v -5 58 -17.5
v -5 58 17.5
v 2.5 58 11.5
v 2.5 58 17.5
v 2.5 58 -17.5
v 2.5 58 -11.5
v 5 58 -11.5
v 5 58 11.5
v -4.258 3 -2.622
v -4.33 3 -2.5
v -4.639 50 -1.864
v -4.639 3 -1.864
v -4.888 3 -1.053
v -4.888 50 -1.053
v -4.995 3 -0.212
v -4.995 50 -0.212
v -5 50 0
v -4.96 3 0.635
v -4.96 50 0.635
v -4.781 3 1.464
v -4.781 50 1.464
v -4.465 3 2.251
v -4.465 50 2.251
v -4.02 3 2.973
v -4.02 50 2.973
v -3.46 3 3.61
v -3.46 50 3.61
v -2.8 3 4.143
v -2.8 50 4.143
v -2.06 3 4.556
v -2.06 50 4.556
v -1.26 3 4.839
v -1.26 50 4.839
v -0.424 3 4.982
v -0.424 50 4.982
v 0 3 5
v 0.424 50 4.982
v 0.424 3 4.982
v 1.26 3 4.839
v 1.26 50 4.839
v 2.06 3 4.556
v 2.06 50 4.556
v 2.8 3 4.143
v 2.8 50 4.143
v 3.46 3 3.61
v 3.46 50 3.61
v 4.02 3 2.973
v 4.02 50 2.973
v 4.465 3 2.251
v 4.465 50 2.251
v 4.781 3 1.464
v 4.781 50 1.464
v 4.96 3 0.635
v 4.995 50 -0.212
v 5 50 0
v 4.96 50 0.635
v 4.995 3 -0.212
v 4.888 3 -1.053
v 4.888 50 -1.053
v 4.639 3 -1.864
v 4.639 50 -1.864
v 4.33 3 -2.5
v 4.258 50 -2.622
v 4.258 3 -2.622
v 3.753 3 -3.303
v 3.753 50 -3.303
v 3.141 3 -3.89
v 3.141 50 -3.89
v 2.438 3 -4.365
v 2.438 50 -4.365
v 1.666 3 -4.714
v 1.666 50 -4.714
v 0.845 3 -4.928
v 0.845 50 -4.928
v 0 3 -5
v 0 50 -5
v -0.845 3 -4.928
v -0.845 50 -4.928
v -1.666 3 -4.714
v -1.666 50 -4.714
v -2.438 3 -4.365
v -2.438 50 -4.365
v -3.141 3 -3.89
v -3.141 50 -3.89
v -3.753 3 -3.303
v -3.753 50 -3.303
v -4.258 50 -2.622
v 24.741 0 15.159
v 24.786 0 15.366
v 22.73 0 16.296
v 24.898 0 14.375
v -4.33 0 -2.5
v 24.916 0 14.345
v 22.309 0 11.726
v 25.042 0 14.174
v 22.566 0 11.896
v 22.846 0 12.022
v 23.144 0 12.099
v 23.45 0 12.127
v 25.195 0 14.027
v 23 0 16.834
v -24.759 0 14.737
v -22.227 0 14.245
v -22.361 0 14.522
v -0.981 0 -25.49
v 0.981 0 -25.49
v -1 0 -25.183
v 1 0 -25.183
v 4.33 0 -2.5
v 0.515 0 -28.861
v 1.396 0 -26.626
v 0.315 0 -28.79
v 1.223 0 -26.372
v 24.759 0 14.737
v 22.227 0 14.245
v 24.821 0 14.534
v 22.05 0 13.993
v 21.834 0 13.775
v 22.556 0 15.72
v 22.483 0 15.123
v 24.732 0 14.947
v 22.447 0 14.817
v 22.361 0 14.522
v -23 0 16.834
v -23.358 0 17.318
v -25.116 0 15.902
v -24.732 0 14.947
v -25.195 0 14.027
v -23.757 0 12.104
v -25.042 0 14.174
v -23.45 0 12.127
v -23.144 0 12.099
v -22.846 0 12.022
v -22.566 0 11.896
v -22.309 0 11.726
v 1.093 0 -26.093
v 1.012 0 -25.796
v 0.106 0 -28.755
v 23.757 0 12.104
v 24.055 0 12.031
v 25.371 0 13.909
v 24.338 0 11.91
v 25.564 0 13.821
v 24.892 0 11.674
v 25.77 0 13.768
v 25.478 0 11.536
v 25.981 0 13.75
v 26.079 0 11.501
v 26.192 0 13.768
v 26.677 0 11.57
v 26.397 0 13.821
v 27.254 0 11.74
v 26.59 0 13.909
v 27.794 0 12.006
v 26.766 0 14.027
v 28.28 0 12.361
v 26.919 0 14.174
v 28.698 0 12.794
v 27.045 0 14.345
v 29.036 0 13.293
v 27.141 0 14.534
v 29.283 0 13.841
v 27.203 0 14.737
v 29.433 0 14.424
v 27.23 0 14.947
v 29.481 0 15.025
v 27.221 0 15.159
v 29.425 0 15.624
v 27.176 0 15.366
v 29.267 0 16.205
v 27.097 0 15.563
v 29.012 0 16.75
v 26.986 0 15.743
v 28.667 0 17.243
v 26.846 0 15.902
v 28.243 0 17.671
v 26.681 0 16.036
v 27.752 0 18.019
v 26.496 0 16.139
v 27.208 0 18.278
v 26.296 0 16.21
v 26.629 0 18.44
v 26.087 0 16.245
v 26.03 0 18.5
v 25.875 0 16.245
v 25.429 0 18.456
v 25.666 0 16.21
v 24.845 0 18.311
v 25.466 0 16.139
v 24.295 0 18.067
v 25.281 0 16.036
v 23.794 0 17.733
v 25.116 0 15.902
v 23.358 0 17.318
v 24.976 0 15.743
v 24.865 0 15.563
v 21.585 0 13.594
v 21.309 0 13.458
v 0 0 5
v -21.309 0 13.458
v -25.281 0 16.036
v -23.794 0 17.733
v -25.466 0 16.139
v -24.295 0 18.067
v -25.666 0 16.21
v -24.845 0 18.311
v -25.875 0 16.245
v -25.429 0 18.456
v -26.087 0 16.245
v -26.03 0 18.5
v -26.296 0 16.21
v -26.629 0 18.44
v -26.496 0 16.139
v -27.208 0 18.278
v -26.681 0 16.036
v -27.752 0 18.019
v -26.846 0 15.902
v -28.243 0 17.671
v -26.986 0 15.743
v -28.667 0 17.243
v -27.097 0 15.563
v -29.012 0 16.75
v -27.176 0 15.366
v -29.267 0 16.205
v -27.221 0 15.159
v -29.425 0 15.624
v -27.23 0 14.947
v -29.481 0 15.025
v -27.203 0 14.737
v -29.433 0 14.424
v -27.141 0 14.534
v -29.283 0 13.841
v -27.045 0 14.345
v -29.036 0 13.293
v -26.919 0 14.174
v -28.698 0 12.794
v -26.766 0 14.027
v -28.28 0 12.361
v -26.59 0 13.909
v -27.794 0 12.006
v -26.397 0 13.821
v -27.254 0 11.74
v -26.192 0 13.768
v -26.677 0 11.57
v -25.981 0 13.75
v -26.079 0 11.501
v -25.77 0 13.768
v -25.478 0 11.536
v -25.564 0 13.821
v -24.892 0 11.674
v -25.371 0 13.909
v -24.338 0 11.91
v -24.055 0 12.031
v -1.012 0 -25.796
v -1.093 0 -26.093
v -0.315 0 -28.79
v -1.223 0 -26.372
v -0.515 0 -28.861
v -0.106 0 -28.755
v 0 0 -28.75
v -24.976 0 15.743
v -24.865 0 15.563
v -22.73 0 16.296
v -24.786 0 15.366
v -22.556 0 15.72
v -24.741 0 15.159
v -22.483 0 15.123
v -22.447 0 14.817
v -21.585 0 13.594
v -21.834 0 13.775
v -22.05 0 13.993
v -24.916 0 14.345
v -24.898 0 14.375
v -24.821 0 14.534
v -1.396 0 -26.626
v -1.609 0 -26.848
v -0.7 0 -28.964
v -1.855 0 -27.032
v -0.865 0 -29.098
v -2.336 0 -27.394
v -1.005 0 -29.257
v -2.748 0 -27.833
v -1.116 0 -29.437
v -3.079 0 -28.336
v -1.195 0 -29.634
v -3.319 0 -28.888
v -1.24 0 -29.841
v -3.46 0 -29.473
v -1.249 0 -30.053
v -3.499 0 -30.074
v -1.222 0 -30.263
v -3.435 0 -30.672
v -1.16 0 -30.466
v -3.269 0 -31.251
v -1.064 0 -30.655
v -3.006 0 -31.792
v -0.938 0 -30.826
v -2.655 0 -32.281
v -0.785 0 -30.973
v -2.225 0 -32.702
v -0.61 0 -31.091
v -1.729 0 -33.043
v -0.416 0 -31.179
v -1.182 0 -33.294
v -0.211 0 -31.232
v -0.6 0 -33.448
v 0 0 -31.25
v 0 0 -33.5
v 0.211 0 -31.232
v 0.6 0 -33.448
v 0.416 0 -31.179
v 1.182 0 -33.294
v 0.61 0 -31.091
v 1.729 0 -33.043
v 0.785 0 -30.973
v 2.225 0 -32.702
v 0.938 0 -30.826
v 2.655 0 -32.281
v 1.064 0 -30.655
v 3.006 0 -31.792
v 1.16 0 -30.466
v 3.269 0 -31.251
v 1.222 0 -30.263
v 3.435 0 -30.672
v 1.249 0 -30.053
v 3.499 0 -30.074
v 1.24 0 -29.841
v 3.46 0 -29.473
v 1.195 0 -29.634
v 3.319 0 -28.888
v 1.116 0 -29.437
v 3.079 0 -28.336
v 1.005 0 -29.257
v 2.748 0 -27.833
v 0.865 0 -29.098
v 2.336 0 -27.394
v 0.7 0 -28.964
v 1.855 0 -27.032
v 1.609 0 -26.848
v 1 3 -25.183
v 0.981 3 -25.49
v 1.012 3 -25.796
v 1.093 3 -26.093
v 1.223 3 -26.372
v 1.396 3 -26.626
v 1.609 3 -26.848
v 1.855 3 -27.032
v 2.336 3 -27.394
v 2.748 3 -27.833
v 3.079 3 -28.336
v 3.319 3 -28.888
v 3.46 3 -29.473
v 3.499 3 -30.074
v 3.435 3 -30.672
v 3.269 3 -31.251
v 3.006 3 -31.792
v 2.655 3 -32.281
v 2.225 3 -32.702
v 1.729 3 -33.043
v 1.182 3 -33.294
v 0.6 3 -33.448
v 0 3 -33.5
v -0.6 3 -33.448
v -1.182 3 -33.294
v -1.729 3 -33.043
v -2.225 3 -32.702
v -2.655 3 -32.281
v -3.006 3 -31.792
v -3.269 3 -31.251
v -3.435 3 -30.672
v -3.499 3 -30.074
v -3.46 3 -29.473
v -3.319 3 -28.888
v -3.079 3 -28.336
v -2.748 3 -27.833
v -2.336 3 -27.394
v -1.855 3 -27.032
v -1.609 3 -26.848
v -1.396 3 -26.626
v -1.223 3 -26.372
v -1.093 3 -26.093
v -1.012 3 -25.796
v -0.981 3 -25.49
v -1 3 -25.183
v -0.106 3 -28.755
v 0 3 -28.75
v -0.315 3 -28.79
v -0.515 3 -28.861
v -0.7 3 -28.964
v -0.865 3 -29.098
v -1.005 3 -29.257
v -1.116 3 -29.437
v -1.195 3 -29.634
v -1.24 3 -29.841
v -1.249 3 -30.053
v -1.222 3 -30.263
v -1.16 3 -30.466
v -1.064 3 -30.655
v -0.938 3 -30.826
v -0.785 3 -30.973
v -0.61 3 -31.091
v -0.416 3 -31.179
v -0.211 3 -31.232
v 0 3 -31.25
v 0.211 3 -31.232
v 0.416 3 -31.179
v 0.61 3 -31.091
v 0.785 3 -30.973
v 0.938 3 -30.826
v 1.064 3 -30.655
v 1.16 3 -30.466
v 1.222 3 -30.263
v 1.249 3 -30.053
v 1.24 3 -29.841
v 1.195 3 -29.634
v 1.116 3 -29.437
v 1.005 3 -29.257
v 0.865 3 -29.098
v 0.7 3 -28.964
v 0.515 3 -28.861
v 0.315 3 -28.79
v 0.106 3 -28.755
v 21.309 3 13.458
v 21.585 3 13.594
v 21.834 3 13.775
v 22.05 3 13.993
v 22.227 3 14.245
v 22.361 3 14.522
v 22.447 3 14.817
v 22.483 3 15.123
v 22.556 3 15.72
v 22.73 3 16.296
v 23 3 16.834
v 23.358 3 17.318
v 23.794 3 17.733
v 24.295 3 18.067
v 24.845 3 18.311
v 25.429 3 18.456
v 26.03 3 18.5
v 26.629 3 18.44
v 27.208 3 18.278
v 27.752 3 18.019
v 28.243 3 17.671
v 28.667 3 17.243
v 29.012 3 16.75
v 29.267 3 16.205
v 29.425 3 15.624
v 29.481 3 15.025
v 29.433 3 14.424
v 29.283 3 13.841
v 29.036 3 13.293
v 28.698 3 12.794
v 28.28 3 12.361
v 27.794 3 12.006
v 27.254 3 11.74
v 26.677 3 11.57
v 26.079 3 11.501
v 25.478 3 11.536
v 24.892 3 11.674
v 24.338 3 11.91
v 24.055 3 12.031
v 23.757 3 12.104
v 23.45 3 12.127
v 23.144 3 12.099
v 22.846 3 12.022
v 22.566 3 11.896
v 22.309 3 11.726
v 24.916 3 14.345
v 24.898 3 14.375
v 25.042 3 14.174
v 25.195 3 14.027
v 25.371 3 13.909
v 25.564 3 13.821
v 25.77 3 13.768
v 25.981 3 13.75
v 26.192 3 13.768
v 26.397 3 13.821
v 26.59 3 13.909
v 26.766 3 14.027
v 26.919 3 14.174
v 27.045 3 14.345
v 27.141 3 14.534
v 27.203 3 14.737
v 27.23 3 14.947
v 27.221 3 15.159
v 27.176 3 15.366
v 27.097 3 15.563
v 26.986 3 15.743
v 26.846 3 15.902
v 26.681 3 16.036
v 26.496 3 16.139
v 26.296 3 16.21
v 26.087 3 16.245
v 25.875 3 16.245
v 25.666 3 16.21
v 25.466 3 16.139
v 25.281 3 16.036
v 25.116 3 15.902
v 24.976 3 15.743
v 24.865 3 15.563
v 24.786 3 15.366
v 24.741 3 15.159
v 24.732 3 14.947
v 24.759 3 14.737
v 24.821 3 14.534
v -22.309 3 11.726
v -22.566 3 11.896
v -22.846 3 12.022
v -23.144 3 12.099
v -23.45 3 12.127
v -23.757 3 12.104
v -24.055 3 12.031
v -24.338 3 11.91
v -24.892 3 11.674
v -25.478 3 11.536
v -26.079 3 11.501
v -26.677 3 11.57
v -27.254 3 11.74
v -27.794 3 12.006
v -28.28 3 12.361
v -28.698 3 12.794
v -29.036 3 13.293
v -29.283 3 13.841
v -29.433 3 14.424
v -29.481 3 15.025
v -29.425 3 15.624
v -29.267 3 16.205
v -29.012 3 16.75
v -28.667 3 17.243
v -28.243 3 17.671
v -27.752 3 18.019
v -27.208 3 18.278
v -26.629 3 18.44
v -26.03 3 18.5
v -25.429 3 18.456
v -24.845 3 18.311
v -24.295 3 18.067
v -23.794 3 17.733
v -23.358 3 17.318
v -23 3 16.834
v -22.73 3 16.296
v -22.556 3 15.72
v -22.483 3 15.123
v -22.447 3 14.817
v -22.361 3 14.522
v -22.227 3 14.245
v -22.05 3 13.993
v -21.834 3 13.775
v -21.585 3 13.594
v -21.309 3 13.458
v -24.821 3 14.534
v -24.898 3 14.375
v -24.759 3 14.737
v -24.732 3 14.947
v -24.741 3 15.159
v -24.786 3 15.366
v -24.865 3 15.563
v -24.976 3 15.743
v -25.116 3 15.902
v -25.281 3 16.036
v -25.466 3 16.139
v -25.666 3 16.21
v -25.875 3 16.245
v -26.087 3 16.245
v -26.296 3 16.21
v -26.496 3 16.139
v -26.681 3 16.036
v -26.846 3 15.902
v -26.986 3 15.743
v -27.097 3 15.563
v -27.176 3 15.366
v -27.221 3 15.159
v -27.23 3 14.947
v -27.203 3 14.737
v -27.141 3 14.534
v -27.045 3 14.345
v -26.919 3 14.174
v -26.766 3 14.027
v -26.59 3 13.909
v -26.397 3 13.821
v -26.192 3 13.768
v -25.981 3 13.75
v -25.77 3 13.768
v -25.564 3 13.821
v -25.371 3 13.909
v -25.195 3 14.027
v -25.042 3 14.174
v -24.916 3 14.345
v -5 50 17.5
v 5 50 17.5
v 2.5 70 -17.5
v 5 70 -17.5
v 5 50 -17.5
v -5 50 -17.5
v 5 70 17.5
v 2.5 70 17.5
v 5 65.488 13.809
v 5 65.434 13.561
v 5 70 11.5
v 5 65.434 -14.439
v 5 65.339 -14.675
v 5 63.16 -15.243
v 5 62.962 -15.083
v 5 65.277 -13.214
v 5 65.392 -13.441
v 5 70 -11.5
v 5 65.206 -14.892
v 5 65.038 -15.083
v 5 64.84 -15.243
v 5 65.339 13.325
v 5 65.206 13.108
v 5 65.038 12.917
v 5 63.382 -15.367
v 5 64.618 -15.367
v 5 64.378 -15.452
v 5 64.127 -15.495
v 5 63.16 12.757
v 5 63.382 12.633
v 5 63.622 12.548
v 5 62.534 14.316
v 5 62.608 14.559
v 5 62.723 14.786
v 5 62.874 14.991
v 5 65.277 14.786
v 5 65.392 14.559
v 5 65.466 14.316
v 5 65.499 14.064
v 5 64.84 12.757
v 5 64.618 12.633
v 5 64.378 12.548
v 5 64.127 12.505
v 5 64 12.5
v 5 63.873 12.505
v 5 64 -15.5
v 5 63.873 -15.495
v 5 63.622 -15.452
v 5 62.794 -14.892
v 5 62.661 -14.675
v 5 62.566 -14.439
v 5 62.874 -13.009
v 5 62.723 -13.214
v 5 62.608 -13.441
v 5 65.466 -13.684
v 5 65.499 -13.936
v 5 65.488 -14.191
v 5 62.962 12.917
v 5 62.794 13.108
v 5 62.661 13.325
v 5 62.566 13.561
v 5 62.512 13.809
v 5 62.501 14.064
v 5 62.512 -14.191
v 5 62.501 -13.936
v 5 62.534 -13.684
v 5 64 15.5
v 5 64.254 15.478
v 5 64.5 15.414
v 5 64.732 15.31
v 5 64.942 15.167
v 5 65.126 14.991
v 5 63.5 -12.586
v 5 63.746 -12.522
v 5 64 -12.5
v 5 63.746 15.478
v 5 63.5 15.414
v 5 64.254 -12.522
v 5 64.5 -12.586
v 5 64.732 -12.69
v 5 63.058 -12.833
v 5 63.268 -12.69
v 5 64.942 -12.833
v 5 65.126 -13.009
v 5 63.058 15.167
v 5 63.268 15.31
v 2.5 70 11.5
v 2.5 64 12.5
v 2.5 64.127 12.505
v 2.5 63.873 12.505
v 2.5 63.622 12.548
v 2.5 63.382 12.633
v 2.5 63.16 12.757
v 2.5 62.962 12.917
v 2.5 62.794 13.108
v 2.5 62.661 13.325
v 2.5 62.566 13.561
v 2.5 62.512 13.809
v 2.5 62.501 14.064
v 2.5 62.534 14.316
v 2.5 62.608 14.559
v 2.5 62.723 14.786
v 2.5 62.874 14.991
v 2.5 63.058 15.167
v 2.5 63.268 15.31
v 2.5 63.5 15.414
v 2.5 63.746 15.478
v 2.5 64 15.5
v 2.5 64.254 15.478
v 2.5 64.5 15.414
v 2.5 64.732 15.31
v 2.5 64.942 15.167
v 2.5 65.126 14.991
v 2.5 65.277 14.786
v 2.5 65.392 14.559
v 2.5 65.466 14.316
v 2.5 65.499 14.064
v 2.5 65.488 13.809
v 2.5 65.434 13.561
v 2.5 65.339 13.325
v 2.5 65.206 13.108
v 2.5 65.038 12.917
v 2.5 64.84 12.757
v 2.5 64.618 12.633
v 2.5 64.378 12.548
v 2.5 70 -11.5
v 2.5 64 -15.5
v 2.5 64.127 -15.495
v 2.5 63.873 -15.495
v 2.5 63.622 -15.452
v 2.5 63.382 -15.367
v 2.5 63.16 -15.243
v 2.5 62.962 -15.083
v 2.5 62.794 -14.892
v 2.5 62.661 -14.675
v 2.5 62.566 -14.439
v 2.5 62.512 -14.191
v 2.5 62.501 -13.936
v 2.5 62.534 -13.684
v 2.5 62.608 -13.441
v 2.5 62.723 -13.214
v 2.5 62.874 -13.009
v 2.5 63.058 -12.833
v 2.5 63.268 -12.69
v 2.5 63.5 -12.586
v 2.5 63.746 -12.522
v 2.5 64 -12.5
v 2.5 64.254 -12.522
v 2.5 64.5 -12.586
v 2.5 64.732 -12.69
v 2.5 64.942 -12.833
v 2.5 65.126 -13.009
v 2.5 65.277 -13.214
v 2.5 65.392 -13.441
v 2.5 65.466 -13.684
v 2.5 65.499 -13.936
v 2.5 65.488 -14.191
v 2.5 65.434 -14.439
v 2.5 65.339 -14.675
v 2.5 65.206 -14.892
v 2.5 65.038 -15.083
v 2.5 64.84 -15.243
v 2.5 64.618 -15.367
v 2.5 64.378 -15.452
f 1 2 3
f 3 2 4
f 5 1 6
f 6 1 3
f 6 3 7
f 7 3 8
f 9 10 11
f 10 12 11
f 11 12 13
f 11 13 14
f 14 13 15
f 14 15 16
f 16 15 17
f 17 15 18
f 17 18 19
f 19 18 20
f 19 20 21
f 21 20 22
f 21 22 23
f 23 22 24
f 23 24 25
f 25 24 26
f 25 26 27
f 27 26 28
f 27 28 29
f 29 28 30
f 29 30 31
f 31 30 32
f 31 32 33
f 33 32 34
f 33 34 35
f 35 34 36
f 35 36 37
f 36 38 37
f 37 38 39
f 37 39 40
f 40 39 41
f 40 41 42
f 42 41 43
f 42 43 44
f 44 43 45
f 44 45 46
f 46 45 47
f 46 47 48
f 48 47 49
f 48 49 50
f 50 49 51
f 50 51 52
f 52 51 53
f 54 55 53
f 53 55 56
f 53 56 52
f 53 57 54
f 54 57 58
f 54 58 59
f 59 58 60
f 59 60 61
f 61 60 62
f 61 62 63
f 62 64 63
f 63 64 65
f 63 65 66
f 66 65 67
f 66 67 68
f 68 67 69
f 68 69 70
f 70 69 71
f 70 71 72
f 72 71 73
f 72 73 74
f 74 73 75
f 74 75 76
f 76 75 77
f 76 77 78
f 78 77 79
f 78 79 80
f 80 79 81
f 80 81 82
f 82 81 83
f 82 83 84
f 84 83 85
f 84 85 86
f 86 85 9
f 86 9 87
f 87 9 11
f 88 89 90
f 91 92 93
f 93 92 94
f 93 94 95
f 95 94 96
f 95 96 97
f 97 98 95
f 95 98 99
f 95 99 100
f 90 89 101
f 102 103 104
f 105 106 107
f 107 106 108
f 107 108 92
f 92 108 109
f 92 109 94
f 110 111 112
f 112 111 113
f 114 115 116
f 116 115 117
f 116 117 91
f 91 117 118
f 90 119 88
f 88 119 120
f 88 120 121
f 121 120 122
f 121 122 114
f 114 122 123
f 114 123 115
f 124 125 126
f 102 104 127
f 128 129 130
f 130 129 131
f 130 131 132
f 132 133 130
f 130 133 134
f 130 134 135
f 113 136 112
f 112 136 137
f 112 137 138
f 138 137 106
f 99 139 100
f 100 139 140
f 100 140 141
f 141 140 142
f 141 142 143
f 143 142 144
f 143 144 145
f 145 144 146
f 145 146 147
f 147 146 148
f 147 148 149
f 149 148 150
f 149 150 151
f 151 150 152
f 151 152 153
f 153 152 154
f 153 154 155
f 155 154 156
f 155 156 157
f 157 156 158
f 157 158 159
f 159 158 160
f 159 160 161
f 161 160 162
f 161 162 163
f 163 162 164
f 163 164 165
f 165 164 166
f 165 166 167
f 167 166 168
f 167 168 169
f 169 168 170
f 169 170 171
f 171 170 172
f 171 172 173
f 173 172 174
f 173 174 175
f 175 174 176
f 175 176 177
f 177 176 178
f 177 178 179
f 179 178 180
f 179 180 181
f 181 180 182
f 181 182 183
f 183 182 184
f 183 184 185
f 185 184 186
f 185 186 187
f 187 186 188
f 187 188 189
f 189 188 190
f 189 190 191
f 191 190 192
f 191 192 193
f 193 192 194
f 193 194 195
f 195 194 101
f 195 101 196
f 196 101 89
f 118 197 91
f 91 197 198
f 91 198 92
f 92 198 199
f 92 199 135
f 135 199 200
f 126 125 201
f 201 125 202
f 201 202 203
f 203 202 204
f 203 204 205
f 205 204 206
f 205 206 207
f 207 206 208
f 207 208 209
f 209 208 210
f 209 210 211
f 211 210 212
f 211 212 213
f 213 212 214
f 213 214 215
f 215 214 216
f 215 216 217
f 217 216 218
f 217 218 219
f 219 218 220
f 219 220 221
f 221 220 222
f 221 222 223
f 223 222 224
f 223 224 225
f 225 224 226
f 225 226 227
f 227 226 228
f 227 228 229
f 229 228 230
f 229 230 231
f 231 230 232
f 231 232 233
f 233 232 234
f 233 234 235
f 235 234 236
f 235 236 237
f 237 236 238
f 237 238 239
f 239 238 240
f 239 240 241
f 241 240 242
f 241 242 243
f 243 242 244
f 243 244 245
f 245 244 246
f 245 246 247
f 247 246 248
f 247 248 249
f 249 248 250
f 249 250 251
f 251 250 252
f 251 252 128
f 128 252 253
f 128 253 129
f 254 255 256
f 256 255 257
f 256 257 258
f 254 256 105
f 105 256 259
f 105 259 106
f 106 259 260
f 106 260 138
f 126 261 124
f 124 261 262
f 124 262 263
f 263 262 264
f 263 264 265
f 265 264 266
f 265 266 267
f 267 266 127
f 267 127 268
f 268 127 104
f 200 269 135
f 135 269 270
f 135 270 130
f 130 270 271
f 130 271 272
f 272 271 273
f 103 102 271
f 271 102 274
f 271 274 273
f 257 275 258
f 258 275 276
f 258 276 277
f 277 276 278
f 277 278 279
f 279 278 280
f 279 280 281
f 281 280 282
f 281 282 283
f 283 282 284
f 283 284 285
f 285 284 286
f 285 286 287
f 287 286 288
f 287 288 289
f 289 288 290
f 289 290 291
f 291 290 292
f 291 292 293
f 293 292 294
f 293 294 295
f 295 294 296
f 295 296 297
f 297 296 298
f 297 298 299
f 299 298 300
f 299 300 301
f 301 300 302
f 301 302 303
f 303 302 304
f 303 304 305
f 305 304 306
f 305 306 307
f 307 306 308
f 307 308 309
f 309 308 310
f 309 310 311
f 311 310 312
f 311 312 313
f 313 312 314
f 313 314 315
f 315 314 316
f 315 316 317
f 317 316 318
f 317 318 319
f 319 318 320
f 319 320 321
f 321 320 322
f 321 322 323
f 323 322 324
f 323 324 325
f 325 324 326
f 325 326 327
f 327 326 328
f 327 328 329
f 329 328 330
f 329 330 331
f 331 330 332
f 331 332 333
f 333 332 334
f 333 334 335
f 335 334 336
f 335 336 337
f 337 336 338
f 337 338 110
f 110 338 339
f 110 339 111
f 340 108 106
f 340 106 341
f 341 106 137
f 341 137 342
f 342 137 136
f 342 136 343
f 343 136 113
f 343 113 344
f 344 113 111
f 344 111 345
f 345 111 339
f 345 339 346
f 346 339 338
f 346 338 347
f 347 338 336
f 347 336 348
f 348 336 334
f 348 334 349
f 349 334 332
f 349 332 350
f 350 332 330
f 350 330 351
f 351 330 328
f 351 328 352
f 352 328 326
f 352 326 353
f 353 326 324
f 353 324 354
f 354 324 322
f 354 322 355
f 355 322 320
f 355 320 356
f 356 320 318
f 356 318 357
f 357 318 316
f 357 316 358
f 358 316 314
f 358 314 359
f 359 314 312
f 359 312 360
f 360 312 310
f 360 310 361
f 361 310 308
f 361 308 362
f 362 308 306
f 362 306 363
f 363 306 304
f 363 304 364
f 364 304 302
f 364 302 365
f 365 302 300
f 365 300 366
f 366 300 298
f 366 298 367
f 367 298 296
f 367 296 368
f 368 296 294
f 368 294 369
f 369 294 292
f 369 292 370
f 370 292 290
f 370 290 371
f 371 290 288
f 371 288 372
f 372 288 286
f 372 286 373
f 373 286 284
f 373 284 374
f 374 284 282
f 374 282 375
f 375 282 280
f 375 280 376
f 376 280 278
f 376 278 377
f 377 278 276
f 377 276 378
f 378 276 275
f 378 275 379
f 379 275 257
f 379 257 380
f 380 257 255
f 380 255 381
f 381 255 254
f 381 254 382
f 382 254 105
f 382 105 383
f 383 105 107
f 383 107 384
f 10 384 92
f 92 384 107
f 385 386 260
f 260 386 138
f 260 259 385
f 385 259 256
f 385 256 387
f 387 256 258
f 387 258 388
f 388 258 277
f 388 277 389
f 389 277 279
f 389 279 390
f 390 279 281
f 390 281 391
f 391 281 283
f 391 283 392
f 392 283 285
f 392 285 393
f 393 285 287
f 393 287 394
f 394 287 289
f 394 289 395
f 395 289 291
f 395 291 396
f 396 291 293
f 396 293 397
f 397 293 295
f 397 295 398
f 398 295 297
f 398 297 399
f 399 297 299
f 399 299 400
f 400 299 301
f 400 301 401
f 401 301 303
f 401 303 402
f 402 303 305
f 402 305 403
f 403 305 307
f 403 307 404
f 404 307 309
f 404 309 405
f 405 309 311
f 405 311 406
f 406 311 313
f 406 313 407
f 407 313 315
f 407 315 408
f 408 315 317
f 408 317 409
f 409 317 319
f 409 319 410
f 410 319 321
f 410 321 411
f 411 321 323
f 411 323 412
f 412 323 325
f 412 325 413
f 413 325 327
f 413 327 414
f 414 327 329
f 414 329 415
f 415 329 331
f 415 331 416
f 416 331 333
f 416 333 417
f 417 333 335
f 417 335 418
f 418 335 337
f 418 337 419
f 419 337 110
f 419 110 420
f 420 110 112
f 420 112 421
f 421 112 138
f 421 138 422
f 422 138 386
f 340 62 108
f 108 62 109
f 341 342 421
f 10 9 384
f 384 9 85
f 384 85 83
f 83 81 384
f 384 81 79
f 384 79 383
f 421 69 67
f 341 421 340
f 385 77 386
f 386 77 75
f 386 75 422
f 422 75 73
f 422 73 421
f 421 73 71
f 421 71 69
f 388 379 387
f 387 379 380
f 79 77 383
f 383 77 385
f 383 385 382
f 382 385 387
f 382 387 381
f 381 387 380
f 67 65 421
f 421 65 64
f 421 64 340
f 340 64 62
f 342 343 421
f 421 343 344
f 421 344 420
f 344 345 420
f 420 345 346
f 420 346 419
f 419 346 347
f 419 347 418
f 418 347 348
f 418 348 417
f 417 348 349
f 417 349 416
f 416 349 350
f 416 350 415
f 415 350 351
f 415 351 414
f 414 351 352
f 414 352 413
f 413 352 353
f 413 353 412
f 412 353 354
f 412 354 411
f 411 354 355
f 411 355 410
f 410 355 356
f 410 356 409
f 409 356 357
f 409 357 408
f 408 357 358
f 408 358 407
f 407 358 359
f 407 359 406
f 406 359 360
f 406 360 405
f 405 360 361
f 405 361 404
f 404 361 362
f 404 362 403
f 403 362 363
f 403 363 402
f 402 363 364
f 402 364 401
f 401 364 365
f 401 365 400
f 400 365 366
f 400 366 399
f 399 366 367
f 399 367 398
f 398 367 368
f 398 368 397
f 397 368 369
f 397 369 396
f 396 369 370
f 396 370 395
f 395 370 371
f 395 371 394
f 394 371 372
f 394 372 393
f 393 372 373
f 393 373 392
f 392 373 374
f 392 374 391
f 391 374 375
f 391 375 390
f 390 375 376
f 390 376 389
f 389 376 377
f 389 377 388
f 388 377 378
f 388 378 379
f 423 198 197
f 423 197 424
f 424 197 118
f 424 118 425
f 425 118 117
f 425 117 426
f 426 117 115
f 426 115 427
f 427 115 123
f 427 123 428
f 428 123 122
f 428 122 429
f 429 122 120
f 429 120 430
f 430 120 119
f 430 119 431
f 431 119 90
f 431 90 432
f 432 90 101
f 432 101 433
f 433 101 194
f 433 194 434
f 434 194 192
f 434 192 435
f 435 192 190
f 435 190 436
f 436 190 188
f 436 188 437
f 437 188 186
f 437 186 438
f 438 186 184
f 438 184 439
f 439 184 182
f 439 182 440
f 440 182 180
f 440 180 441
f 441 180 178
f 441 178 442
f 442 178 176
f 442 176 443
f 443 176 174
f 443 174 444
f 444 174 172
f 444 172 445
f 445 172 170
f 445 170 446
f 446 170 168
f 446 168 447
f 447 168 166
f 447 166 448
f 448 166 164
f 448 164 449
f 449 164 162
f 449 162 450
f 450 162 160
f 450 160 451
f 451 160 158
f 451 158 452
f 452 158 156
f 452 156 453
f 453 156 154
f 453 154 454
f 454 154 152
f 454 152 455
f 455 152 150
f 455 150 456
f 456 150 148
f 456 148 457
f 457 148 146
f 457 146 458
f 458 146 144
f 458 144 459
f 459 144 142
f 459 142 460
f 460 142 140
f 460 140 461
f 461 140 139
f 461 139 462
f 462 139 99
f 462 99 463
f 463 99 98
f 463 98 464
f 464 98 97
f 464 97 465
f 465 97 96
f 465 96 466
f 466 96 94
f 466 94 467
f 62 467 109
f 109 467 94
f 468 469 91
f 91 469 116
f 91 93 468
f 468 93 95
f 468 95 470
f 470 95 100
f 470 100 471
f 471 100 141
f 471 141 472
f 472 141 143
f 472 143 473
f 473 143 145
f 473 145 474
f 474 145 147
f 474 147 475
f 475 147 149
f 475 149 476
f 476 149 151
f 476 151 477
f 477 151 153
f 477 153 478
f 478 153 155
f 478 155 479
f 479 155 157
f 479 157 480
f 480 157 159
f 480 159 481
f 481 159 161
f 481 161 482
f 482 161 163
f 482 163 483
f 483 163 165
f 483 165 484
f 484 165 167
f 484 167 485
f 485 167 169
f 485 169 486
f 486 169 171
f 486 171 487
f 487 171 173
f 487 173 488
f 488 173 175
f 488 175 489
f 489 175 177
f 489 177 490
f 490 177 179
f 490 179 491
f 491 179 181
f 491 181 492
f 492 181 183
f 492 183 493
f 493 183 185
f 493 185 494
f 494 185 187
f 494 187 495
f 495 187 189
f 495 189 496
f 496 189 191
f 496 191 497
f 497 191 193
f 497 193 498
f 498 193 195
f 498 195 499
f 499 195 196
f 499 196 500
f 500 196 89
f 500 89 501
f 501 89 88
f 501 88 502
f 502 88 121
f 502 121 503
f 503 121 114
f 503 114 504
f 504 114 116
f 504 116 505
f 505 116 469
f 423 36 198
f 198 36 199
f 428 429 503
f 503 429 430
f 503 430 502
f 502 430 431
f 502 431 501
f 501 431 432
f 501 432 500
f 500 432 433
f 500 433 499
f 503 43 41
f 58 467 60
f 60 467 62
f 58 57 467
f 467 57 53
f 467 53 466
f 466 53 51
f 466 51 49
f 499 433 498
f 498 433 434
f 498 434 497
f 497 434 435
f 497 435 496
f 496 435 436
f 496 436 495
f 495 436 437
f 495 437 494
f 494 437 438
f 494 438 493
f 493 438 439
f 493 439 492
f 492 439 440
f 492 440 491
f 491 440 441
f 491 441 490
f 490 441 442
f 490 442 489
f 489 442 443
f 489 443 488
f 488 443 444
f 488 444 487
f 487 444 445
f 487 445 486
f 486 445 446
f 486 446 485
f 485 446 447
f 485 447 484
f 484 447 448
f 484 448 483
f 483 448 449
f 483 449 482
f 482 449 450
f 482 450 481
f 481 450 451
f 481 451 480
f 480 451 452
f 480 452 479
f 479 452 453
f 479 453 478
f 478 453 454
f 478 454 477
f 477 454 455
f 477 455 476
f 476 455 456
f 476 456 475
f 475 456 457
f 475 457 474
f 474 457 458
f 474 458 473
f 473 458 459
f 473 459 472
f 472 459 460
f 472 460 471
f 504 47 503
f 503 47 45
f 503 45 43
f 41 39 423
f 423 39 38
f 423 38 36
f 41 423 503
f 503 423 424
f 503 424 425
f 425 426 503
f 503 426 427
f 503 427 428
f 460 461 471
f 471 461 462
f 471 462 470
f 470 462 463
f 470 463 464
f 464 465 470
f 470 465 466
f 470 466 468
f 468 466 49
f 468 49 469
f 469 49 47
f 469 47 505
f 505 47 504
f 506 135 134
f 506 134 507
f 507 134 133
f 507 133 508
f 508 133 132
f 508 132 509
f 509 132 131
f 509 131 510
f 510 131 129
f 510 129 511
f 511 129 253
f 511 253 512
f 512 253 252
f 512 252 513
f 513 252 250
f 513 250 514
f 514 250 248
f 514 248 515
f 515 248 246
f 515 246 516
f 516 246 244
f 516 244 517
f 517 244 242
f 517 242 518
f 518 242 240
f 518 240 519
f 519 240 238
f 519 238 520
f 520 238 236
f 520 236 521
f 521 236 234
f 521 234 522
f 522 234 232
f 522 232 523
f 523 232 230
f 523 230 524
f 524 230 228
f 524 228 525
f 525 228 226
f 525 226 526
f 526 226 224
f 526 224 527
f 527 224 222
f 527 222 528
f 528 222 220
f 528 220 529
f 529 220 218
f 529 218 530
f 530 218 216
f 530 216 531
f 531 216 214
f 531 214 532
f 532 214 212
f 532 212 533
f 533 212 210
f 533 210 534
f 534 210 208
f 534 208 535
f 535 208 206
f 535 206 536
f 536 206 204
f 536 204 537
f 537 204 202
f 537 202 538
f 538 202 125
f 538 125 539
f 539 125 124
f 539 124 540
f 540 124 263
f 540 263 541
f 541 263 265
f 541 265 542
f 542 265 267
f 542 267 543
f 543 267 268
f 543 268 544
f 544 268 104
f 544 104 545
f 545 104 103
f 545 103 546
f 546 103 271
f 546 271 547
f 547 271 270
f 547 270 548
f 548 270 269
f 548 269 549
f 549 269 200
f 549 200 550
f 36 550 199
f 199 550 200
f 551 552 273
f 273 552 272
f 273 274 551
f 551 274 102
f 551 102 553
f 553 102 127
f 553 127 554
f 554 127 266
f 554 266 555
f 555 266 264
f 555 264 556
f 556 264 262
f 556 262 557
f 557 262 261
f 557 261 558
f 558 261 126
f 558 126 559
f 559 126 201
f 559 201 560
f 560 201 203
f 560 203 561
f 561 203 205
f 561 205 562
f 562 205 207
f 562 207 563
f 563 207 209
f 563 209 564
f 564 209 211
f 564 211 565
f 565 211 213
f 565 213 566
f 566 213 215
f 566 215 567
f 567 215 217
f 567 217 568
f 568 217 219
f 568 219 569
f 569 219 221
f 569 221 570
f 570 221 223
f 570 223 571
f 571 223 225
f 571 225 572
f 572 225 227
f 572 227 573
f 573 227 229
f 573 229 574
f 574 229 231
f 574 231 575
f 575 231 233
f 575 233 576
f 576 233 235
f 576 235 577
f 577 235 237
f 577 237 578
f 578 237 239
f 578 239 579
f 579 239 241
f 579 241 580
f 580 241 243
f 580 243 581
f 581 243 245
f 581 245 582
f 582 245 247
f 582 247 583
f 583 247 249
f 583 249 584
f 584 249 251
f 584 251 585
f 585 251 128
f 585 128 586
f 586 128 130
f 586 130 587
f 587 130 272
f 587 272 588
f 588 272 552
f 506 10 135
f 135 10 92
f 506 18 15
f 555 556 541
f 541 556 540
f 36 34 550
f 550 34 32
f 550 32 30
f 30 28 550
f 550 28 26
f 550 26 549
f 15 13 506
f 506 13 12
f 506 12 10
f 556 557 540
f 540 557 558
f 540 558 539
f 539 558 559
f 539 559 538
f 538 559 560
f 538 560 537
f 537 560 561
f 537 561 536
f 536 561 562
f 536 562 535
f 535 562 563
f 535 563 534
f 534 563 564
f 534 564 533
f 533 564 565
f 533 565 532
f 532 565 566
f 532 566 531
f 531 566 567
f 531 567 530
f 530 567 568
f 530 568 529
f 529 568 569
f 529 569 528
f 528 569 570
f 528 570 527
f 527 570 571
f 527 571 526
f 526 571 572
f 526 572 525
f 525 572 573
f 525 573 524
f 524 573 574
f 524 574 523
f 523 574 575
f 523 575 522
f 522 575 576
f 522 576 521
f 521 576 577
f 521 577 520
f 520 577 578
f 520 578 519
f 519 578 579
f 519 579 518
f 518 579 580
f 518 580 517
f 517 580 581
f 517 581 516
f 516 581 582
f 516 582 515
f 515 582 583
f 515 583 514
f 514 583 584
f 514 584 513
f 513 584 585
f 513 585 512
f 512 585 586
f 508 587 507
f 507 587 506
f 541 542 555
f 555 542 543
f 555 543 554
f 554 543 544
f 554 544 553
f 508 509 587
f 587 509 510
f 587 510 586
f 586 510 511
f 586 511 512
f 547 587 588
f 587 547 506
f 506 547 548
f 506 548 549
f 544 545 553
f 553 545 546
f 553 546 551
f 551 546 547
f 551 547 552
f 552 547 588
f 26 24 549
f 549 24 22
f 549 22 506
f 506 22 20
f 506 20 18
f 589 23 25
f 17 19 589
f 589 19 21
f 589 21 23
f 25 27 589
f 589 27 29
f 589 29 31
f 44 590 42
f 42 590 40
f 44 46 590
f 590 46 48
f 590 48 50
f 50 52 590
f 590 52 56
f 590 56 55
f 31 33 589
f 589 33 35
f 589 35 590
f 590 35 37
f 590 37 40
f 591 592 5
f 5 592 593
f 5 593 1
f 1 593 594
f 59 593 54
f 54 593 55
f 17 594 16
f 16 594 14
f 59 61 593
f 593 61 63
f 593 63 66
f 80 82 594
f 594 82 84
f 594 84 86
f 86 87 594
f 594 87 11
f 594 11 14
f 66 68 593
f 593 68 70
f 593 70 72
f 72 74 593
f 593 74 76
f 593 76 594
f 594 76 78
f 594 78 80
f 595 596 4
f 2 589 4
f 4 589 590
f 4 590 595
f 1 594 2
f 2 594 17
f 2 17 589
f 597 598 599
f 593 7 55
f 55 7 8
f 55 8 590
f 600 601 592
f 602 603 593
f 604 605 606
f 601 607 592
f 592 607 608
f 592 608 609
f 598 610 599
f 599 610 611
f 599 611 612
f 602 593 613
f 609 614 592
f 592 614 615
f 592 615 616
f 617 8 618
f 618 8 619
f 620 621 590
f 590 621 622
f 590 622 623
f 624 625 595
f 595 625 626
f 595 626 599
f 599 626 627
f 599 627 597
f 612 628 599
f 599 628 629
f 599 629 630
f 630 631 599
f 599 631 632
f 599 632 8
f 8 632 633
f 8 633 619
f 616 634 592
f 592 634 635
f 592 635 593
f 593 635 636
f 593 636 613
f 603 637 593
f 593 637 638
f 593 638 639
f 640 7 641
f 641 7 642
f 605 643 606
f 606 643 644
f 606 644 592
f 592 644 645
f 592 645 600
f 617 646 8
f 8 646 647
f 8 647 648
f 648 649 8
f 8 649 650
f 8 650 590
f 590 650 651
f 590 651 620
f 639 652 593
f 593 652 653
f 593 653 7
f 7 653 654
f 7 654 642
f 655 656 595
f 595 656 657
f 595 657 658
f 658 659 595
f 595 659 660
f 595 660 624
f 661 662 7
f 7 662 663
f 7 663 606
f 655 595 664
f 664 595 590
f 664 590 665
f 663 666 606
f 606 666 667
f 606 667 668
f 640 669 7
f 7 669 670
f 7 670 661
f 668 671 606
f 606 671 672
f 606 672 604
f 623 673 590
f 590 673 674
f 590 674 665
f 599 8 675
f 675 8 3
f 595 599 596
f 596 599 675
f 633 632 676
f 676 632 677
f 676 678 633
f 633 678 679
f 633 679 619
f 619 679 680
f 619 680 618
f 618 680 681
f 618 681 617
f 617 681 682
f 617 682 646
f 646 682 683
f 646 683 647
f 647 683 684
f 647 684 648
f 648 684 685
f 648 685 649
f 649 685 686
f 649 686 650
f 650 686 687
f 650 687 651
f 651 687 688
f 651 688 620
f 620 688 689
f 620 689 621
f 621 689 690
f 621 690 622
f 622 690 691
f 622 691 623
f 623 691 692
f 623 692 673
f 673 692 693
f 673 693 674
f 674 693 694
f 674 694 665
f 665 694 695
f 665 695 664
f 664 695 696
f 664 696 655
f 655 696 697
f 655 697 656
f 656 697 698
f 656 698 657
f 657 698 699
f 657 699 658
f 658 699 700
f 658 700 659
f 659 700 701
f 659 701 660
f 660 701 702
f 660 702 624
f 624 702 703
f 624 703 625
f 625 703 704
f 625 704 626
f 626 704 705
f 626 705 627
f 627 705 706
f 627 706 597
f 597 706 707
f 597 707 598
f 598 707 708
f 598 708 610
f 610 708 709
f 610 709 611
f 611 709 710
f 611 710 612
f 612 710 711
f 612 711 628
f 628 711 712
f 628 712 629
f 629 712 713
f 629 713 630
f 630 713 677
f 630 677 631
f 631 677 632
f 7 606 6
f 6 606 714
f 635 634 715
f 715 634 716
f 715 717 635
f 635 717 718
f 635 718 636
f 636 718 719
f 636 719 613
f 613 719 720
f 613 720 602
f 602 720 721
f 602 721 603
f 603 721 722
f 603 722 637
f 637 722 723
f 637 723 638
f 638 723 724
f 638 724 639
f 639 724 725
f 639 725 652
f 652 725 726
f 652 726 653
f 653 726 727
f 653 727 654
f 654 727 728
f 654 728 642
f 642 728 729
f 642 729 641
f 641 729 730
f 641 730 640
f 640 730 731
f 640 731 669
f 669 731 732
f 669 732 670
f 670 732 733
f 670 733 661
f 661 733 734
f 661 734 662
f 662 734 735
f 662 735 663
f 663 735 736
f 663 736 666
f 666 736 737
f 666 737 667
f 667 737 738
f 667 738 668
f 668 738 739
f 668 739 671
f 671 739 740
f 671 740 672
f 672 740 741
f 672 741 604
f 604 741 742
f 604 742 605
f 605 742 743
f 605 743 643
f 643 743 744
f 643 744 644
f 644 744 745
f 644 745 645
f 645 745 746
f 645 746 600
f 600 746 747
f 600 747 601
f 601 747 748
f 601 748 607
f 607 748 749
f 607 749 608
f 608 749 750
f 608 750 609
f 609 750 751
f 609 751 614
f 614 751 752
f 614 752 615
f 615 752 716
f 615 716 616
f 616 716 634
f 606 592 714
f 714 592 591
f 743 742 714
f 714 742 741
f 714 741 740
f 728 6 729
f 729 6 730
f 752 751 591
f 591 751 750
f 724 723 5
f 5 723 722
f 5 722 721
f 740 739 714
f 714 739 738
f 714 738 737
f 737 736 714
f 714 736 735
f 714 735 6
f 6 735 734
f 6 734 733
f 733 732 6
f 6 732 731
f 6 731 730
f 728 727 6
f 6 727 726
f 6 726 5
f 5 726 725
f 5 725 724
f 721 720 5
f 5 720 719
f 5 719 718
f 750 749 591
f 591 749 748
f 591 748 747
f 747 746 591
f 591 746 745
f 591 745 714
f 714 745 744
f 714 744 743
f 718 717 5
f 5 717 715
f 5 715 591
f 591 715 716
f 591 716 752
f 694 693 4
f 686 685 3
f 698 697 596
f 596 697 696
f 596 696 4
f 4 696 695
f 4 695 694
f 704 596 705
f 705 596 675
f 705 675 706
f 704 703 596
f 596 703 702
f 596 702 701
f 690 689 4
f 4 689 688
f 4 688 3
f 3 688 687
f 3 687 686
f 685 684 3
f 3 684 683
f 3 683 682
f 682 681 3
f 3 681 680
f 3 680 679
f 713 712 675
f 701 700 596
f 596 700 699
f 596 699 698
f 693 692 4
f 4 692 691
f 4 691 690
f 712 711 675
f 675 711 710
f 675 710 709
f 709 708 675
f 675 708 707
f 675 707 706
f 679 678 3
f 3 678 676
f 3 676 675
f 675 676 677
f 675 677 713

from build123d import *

# Parameters (mm, degrees)
SKETCH1_W                = 5
SKETCH1_H                = 50
SKETCH2_R                = 1.25
BOSS_EXTRUDE1_DEPTH      = 3
CIRPATTERN1_COUNT        = 3
BOSS_EXTRUDE2_DEPTH      = 5
BOSS_EXTRUDE2_DEPTH_BACK = 5
SKETCH3_3_W              = 6
SKETCH3_3_H              = 12
SKETCH3_3_R              = 1.5
BOSS_EXTRUDE3_DEPTH      = 5
SKETCH4_W                = 2.5
SKETCH4_H                = 12
CUT_EXTRUDE1_DEPTH       = 92.488334419


with BuildPart() as part:
    # Sketch1 → Revolve1 (revolve)
    with BuildSketch(Plane.XY):
        with Locations((2.5, 25)):
            Rectangle(SKETCH1_W, SKETCH1_H)
    revolve(axis=Axis((0, 0, 0), (0, 1, 0)))

    # Sketch2 → Boss-Extrude1 (add)
    with BuildSketch(Plane(origin=(0, 0, 0), x_dir=(1, 0, 0), z_dir=(0, 1, 0))):
        with BuildLine():
            Line((-1, 25.183337145), (-4.330127019, 2.5))
            Line((-4.330127019, 2.5), (4.330127019, 2.5))
            Line((4.330127019, 2.5), (1, 25.183337145))
            ThreePointArc((1, 25.183337145), (1.152197325, 26.235023126), (1.855037693, 27.032031813))
            ThreePointArc((1.855037693, 27.032031813), (0, 33.5), (-1.855037693, 27.032031813))
            ThreePointArc((-1.855037693, 27.032031813), (-1.152197325, 26.235023126), (-1, 25.183337145))
        make_face()
        with Locations((0, 30)):
            Circle(SKETCH2_R, mode=Mode.SUBTRACT)
    boss_extrude1 = extrude(amount=BOSS_EXTRUDE1_DEPTH)

    # CirPattern1: Boss-Extrude1 ×3 about axis
    cirpattern1_axis = Axis((0, 50, 0), (0, -1, 0))
    for i in range(1, CIRPATTERN1_COUNT):
        add(boss_extrude1.rotate(cirpattern1_axis, i * 360 / CIRPATTERN1_COUNT))

    # Sketch3 → Boss-Extrude2 (add, two sides: drawn at the far end of the back side and taken through both)
    with BuildSketch(Plane(origin=(0, 0, 0), x_dir=(0, 0, -1), z_dir=(1, 0, 0)).offset(-BOSS_EXTRUDE2_DEPTH_BACK)):
        Polygon((-17.5, 50), (17.5, 50), (17.5, 58), (11.5, 58), (-11.5, 58), (-17.5, 58), align=None)
    extrude(amount=BOSS_EXTRUDE2_DEPTH + BOSS_EXTRUDE2_DEPTH_BACK)

    # Sketch3<3> → Boss-Extrude3 (add)
    # profile 1 of 2: a face of its own
    with BuildSketch(Plane(origin=(0, 0, 0), x_dir=(0, 0, -1), z_dir=(1, 0, 0))):
        with Locations((14.5, 64)):
            Rectangle(SKETCH3_3_W, SKETCH3_3_H)
        with Locations((14, 64)):
            Circle(SKETCH3_3_R, mode=Mode.SUBTRACT)
    # profile 2 of 2: a face of its own
    with BuildSketch(Plane(origin=(0, 0, 0), x_dir=(0, 0, -1), z_dir=(1, 0, 0))):
        with Locations((-14.5, 64)):
            Rectangle(SKETCH3_3_W, SKETCH3_3_H)
        with Locations((-14, 64)):
            Circle(SKETCH3_3_R, mode=Mode.SUBTRACT)
    extrude(amount=BOSS_EXTRUDE3_DEPTH)

    # Sketch4 → Cut-Extrude1 (cut, through all)
    with BuildSketch(Plane.XY.offset(17.5)):
        with Locations((1.25, 64)):
            Rectangle(SKETCH4_W, SKETCH4_H)
    extrude(amount=-CUT_EXTRUDE1_DEPTH, mode=Mode.SUBTRACT)


solid = part.part
